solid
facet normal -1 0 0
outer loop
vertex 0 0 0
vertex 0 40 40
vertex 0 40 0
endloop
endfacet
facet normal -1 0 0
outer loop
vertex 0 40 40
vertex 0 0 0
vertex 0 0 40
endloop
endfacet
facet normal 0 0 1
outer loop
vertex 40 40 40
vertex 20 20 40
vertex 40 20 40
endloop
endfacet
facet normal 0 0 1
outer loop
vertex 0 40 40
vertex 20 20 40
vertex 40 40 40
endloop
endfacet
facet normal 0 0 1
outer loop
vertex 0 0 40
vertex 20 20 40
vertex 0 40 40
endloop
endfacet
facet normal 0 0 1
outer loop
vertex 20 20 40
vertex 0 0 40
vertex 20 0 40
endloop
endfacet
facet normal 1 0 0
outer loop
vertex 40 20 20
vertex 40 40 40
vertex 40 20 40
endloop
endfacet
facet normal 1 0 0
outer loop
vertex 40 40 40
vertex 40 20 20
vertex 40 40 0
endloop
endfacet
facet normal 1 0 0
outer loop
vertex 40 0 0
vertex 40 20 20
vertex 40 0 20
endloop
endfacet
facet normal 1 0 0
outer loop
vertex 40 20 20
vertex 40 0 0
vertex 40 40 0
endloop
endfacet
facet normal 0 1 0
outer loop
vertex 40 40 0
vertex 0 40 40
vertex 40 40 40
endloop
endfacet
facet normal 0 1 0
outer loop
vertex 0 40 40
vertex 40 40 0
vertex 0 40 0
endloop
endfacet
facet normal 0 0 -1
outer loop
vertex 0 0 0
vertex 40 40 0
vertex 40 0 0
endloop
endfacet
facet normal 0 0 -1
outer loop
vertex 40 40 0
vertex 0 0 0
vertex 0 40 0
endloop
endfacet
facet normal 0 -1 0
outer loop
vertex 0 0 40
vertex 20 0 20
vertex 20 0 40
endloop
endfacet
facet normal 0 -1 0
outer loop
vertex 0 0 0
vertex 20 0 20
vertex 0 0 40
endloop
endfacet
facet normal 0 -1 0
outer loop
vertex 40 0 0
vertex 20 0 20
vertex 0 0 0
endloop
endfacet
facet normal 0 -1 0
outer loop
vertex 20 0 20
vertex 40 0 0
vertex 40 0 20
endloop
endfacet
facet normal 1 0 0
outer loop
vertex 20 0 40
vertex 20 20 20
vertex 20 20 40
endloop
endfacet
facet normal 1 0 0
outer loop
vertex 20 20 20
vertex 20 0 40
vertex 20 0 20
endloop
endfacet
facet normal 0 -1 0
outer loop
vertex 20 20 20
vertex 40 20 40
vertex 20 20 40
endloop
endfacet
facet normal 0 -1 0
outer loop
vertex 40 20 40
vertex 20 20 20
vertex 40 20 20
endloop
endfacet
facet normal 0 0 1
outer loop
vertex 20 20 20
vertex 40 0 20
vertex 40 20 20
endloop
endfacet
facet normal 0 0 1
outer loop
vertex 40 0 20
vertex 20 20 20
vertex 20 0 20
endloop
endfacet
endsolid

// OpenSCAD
difference(){

cube([40,40,40]);
translate([20,0,20])
cube([20,20,20]);

}
